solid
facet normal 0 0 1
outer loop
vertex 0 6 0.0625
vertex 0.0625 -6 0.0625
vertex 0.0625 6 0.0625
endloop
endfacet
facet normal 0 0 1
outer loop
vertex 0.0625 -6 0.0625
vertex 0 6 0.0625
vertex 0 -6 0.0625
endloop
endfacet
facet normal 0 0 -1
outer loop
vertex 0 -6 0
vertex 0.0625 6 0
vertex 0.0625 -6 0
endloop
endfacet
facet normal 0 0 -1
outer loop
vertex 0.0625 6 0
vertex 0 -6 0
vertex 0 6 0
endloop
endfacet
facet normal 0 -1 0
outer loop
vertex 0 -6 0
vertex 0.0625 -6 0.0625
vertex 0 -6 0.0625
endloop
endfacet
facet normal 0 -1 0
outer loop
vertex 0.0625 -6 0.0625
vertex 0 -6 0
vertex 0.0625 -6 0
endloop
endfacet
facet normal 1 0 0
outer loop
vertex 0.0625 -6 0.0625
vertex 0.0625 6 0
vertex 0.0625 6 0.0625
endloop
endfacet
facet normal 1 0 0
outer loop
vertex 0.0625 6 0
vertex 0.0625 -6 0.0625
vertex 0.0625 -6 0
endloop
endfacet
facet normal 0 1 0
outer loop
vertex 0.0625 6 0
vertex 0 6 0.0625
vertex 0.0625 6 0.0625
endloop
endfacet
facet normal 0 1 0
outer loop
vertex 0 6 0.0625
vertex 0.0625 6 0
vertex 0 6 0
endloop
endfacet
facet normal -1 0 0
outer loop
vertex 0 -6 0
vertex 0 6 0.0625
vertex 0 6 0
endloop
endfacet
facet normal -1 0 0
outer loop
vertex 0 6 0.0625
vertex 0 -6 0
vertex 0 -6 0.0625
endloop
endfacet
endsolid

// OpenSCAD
// file: ../../../constraints.scad
//####################################
// Math-Magik LPP - Design Constraints
// (c) 2021 by Roie R. Black
//====================================

// AMA Rules for event 208
//------------------------------------

max_overall_length = 20;
max_projected_wing_span = 18;
max_bearing_to_rear_hook = 10;
max_wing_chord = 5;
max_stab_span = 12;
max_stab_chord = 4;
max_prop_diameter = 12;
// file: MMlib/square_spar.scad
//####################################
// square_spar.scad
// (c) 2021 by Roie R. Black
//====================================


module square_spar(length=6,size=1/16) {
  translate([size/2, 0, size/2])
    cube([size,length,size], center=true);
}

square_spar(6,1/16);
// file: ../../wing_data.scad
//#####################################
// wing.data
// (c) 2021 by Roie R. Black
//=====================================
include <../constraints.scad>

// center section dimensions
center_span = 12;
spar_size = 1/16;
rib_chord = max_wing_chord - 2 * spar_size;
rib_camber = 4;
num_center_ribs = 5;

// tip section dimensions
tip_dihedral = 1.75;
tip_radius = 2;
a = tip_dihedral;
b = (max_projected_wing_span - center_span)/2;
tip_span = sqrt(a*a + b*b);
tip_dihedral_angle = atan2(a,b);
tip_le_span = tip_span - tip_radius;
tip_rib_chord = max_wing_chord - tip_radius - spar_size;
// main file
//##########################################
// spar.scad = wing center section
// (c) 2021 by Roie R. Black
//==========================================
include <../../wing_data.scad>
use <MMlib/square_spar.scad>

module spar() {
		square_spar(center_span, spar_size);
}

//==========================================
// display this shape
spar();
